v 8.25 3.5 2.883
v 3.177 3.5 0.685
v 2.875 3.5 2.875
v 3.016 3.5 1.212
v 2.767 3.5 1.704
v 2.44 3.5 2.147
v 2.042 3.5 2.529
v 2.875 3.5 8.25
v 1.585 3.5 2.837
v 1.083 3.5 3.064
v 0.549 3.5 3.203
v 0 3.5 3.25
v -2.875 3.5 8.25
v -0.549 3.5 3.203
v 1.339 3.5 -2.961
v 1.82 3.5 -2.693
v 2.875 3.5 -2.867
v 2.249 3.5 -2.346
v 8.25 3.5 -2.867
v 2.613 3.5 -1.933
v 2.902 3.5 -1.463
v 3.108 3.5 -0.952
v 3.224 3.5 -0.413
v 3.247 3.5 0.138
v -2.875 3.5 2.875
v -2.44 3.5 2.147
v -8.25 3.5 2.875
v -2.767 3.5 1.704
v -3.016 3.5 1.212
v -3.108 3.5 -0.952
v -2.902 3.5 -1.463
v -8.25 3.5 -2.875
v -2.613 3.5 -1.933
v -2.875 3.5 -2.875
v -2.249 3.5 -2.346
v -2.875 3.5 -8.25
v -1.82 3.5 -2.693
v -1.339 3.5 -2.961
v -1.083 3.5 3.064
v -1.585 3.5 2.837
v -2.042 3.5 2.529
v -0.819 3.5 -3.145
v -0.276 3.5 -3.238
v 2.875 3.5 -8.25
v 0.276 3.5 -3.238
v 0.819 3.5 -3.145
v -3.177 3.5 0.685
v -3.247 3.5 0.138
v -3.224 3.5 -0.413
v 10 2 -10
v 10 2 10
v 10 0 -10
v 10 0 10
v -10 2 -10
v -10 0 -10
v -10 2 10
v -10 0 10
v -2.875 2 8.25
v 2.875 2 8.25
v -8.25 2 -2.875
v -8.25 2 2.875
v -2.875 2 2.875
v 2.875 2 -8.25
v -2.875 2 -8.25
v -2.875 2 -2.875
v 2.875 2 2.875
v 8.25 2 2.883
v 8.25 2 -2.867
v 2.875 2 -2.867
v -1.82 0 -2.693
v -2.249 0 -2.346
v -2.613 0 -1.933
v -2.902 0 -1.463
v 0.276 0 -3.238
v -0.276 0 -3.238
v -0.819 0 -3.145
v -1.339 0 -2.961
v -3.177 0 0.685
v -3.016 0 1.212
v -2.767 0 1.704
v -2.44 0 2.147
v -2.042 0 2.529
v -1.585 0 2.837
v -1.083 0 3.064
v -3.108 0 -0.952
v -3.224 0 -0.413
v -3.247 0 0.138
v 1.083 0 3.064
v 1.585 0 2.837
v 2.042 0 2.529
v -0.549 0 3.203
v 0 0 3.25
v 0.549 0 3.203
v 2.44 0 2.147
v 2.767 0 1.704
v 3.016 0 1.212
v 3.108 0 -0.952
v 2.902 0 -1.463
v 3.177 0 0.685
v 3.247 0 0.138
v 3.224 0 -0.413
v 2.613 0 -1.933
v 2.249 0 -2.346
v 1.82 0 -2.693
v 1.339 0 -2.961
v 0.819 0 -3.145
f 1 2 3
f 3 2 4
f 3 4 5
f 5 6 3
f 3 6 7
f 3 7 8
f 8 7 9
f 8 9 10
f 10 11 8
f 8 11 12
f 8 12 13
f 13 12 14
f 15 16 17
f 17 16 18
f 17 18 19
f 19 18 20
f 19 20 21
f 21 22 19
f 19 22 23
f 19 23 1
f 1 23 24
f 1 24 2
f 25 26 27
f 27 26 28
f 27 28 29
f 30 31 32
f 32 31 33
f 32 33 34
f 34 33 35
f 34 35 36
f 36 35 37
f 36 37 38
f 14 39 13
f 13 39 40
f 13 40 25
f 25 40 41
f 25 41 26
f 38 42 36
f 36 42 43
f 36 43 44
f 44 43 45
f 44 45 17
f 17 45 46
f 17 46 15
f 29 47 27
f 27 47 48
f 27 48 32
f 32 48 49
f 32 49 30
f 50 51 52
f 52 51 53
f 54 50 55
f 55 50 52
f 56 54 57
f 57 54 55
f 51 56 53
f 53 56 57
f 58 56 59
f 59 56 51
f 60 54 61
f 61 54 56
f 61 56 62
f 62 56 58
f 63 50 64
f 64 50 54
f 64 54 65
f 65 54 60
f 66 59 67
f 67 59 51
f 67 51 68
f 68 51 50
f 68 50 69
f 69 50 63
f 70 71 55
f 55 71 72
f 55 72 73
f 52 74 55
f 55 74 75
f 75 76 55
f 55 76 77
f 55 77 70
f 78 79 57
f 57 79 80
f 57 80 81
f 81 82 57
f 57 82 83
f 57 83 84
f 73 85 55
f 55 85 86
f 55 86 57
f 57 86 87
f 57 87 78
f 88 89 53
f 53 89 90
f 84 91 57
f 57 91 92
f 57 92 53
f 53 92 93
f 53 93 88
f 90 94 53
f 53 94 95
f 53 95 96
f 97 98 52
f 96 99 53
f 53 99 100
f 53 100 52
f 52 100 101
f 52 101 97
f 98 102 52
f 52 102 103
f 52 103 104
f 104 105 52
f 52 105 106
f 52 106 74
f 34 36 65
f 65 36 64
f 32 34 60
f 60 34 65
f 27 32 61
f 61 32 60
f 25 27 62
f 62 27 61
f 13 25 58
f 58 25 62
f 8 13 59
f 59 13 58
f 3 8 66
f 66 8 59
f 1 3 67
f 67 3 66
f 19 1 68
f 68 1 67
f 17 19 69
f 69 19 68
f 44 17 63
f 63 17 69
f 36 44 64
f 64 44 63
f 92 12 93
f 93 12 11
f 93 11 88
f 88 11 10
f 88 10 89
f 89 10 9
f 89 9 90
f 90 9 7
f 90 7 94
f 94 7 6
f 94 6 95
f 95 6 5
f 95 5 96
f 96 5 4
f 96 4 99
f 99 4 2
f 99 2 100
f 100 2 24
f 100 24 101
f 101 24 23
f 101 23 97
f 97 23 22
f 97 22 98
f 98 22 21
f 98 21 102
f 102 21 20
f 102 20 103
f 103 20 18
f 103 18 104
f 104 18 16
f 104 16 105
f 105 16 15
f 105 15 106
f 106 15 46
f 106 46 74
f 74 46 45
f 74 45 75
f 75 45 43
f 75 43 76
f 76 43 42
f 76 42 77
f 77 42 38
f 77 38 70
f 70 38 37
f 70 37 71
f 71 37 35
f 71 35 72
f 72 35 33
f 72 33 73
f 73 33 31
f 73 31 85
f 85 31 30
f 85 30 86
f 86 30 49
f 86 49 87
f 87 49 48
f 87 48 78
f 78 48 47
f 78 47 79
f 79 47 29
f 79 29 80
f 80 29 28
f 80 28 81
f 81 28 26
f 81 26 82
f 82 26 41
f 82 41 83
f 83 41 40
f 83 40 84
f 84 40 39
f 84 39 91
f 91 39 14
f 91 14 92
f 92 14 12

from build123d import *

# Parameters (mm, degrees)
SKETCH1_W                      = 20
SKETCH1_H                      = 20
BOSS_EXTRUDE1_DEPTH            = 2
BOSS_EXTRUDE3_DEPTH            = 1.5
TAP_DRILL_FOR_M2_2_HELICOIL1_D = 6.5


with BuildPart() as part:
    # Sketch1 → Boss-Extrude1 (new body)
    with BuildSketch(Plane(origin=(0, 0, 0), x_dir=(1, 0, 0), z_dir=(0, 1, 0))):
        Rectangle(SKETCH1_W, SKETCH1_H)
    extrude(amount=BOSS_EXTRUDE1_DEPTH)

    # Sketch3 → Boss-Extrude3 (add)
    with BuildSketch(Plane(origin=(0, 2, 0), x_dir=(1, 0, 0), z_dir=(0, 1, 0))):
        Polygon((-2.875, 8.25), (2.875, 8.25), (2.875, 2.867474963), (8.25, 2.867474963), (8.25, -2.882525037), (2.875, -2.875), (2.875, -8.25), (-2.875, -8.25), (-2.875, -2.875), (-8.25, -2.875), (-8.25, 2.875), (-2.875, 2.875), align=None)
    extrude(amount=BOSS_EXTRUDE3_DEPTH)

    # Tap Drill for M2.2 Helicoil1 (through all)
    with Locations(Plane.ZX.offset(3.5)):
        with Locations((0, 0)):
            Hole(TAP_DRILL_FOR_M2_2_HELICOIL1_D / 2)


solid = part.part
